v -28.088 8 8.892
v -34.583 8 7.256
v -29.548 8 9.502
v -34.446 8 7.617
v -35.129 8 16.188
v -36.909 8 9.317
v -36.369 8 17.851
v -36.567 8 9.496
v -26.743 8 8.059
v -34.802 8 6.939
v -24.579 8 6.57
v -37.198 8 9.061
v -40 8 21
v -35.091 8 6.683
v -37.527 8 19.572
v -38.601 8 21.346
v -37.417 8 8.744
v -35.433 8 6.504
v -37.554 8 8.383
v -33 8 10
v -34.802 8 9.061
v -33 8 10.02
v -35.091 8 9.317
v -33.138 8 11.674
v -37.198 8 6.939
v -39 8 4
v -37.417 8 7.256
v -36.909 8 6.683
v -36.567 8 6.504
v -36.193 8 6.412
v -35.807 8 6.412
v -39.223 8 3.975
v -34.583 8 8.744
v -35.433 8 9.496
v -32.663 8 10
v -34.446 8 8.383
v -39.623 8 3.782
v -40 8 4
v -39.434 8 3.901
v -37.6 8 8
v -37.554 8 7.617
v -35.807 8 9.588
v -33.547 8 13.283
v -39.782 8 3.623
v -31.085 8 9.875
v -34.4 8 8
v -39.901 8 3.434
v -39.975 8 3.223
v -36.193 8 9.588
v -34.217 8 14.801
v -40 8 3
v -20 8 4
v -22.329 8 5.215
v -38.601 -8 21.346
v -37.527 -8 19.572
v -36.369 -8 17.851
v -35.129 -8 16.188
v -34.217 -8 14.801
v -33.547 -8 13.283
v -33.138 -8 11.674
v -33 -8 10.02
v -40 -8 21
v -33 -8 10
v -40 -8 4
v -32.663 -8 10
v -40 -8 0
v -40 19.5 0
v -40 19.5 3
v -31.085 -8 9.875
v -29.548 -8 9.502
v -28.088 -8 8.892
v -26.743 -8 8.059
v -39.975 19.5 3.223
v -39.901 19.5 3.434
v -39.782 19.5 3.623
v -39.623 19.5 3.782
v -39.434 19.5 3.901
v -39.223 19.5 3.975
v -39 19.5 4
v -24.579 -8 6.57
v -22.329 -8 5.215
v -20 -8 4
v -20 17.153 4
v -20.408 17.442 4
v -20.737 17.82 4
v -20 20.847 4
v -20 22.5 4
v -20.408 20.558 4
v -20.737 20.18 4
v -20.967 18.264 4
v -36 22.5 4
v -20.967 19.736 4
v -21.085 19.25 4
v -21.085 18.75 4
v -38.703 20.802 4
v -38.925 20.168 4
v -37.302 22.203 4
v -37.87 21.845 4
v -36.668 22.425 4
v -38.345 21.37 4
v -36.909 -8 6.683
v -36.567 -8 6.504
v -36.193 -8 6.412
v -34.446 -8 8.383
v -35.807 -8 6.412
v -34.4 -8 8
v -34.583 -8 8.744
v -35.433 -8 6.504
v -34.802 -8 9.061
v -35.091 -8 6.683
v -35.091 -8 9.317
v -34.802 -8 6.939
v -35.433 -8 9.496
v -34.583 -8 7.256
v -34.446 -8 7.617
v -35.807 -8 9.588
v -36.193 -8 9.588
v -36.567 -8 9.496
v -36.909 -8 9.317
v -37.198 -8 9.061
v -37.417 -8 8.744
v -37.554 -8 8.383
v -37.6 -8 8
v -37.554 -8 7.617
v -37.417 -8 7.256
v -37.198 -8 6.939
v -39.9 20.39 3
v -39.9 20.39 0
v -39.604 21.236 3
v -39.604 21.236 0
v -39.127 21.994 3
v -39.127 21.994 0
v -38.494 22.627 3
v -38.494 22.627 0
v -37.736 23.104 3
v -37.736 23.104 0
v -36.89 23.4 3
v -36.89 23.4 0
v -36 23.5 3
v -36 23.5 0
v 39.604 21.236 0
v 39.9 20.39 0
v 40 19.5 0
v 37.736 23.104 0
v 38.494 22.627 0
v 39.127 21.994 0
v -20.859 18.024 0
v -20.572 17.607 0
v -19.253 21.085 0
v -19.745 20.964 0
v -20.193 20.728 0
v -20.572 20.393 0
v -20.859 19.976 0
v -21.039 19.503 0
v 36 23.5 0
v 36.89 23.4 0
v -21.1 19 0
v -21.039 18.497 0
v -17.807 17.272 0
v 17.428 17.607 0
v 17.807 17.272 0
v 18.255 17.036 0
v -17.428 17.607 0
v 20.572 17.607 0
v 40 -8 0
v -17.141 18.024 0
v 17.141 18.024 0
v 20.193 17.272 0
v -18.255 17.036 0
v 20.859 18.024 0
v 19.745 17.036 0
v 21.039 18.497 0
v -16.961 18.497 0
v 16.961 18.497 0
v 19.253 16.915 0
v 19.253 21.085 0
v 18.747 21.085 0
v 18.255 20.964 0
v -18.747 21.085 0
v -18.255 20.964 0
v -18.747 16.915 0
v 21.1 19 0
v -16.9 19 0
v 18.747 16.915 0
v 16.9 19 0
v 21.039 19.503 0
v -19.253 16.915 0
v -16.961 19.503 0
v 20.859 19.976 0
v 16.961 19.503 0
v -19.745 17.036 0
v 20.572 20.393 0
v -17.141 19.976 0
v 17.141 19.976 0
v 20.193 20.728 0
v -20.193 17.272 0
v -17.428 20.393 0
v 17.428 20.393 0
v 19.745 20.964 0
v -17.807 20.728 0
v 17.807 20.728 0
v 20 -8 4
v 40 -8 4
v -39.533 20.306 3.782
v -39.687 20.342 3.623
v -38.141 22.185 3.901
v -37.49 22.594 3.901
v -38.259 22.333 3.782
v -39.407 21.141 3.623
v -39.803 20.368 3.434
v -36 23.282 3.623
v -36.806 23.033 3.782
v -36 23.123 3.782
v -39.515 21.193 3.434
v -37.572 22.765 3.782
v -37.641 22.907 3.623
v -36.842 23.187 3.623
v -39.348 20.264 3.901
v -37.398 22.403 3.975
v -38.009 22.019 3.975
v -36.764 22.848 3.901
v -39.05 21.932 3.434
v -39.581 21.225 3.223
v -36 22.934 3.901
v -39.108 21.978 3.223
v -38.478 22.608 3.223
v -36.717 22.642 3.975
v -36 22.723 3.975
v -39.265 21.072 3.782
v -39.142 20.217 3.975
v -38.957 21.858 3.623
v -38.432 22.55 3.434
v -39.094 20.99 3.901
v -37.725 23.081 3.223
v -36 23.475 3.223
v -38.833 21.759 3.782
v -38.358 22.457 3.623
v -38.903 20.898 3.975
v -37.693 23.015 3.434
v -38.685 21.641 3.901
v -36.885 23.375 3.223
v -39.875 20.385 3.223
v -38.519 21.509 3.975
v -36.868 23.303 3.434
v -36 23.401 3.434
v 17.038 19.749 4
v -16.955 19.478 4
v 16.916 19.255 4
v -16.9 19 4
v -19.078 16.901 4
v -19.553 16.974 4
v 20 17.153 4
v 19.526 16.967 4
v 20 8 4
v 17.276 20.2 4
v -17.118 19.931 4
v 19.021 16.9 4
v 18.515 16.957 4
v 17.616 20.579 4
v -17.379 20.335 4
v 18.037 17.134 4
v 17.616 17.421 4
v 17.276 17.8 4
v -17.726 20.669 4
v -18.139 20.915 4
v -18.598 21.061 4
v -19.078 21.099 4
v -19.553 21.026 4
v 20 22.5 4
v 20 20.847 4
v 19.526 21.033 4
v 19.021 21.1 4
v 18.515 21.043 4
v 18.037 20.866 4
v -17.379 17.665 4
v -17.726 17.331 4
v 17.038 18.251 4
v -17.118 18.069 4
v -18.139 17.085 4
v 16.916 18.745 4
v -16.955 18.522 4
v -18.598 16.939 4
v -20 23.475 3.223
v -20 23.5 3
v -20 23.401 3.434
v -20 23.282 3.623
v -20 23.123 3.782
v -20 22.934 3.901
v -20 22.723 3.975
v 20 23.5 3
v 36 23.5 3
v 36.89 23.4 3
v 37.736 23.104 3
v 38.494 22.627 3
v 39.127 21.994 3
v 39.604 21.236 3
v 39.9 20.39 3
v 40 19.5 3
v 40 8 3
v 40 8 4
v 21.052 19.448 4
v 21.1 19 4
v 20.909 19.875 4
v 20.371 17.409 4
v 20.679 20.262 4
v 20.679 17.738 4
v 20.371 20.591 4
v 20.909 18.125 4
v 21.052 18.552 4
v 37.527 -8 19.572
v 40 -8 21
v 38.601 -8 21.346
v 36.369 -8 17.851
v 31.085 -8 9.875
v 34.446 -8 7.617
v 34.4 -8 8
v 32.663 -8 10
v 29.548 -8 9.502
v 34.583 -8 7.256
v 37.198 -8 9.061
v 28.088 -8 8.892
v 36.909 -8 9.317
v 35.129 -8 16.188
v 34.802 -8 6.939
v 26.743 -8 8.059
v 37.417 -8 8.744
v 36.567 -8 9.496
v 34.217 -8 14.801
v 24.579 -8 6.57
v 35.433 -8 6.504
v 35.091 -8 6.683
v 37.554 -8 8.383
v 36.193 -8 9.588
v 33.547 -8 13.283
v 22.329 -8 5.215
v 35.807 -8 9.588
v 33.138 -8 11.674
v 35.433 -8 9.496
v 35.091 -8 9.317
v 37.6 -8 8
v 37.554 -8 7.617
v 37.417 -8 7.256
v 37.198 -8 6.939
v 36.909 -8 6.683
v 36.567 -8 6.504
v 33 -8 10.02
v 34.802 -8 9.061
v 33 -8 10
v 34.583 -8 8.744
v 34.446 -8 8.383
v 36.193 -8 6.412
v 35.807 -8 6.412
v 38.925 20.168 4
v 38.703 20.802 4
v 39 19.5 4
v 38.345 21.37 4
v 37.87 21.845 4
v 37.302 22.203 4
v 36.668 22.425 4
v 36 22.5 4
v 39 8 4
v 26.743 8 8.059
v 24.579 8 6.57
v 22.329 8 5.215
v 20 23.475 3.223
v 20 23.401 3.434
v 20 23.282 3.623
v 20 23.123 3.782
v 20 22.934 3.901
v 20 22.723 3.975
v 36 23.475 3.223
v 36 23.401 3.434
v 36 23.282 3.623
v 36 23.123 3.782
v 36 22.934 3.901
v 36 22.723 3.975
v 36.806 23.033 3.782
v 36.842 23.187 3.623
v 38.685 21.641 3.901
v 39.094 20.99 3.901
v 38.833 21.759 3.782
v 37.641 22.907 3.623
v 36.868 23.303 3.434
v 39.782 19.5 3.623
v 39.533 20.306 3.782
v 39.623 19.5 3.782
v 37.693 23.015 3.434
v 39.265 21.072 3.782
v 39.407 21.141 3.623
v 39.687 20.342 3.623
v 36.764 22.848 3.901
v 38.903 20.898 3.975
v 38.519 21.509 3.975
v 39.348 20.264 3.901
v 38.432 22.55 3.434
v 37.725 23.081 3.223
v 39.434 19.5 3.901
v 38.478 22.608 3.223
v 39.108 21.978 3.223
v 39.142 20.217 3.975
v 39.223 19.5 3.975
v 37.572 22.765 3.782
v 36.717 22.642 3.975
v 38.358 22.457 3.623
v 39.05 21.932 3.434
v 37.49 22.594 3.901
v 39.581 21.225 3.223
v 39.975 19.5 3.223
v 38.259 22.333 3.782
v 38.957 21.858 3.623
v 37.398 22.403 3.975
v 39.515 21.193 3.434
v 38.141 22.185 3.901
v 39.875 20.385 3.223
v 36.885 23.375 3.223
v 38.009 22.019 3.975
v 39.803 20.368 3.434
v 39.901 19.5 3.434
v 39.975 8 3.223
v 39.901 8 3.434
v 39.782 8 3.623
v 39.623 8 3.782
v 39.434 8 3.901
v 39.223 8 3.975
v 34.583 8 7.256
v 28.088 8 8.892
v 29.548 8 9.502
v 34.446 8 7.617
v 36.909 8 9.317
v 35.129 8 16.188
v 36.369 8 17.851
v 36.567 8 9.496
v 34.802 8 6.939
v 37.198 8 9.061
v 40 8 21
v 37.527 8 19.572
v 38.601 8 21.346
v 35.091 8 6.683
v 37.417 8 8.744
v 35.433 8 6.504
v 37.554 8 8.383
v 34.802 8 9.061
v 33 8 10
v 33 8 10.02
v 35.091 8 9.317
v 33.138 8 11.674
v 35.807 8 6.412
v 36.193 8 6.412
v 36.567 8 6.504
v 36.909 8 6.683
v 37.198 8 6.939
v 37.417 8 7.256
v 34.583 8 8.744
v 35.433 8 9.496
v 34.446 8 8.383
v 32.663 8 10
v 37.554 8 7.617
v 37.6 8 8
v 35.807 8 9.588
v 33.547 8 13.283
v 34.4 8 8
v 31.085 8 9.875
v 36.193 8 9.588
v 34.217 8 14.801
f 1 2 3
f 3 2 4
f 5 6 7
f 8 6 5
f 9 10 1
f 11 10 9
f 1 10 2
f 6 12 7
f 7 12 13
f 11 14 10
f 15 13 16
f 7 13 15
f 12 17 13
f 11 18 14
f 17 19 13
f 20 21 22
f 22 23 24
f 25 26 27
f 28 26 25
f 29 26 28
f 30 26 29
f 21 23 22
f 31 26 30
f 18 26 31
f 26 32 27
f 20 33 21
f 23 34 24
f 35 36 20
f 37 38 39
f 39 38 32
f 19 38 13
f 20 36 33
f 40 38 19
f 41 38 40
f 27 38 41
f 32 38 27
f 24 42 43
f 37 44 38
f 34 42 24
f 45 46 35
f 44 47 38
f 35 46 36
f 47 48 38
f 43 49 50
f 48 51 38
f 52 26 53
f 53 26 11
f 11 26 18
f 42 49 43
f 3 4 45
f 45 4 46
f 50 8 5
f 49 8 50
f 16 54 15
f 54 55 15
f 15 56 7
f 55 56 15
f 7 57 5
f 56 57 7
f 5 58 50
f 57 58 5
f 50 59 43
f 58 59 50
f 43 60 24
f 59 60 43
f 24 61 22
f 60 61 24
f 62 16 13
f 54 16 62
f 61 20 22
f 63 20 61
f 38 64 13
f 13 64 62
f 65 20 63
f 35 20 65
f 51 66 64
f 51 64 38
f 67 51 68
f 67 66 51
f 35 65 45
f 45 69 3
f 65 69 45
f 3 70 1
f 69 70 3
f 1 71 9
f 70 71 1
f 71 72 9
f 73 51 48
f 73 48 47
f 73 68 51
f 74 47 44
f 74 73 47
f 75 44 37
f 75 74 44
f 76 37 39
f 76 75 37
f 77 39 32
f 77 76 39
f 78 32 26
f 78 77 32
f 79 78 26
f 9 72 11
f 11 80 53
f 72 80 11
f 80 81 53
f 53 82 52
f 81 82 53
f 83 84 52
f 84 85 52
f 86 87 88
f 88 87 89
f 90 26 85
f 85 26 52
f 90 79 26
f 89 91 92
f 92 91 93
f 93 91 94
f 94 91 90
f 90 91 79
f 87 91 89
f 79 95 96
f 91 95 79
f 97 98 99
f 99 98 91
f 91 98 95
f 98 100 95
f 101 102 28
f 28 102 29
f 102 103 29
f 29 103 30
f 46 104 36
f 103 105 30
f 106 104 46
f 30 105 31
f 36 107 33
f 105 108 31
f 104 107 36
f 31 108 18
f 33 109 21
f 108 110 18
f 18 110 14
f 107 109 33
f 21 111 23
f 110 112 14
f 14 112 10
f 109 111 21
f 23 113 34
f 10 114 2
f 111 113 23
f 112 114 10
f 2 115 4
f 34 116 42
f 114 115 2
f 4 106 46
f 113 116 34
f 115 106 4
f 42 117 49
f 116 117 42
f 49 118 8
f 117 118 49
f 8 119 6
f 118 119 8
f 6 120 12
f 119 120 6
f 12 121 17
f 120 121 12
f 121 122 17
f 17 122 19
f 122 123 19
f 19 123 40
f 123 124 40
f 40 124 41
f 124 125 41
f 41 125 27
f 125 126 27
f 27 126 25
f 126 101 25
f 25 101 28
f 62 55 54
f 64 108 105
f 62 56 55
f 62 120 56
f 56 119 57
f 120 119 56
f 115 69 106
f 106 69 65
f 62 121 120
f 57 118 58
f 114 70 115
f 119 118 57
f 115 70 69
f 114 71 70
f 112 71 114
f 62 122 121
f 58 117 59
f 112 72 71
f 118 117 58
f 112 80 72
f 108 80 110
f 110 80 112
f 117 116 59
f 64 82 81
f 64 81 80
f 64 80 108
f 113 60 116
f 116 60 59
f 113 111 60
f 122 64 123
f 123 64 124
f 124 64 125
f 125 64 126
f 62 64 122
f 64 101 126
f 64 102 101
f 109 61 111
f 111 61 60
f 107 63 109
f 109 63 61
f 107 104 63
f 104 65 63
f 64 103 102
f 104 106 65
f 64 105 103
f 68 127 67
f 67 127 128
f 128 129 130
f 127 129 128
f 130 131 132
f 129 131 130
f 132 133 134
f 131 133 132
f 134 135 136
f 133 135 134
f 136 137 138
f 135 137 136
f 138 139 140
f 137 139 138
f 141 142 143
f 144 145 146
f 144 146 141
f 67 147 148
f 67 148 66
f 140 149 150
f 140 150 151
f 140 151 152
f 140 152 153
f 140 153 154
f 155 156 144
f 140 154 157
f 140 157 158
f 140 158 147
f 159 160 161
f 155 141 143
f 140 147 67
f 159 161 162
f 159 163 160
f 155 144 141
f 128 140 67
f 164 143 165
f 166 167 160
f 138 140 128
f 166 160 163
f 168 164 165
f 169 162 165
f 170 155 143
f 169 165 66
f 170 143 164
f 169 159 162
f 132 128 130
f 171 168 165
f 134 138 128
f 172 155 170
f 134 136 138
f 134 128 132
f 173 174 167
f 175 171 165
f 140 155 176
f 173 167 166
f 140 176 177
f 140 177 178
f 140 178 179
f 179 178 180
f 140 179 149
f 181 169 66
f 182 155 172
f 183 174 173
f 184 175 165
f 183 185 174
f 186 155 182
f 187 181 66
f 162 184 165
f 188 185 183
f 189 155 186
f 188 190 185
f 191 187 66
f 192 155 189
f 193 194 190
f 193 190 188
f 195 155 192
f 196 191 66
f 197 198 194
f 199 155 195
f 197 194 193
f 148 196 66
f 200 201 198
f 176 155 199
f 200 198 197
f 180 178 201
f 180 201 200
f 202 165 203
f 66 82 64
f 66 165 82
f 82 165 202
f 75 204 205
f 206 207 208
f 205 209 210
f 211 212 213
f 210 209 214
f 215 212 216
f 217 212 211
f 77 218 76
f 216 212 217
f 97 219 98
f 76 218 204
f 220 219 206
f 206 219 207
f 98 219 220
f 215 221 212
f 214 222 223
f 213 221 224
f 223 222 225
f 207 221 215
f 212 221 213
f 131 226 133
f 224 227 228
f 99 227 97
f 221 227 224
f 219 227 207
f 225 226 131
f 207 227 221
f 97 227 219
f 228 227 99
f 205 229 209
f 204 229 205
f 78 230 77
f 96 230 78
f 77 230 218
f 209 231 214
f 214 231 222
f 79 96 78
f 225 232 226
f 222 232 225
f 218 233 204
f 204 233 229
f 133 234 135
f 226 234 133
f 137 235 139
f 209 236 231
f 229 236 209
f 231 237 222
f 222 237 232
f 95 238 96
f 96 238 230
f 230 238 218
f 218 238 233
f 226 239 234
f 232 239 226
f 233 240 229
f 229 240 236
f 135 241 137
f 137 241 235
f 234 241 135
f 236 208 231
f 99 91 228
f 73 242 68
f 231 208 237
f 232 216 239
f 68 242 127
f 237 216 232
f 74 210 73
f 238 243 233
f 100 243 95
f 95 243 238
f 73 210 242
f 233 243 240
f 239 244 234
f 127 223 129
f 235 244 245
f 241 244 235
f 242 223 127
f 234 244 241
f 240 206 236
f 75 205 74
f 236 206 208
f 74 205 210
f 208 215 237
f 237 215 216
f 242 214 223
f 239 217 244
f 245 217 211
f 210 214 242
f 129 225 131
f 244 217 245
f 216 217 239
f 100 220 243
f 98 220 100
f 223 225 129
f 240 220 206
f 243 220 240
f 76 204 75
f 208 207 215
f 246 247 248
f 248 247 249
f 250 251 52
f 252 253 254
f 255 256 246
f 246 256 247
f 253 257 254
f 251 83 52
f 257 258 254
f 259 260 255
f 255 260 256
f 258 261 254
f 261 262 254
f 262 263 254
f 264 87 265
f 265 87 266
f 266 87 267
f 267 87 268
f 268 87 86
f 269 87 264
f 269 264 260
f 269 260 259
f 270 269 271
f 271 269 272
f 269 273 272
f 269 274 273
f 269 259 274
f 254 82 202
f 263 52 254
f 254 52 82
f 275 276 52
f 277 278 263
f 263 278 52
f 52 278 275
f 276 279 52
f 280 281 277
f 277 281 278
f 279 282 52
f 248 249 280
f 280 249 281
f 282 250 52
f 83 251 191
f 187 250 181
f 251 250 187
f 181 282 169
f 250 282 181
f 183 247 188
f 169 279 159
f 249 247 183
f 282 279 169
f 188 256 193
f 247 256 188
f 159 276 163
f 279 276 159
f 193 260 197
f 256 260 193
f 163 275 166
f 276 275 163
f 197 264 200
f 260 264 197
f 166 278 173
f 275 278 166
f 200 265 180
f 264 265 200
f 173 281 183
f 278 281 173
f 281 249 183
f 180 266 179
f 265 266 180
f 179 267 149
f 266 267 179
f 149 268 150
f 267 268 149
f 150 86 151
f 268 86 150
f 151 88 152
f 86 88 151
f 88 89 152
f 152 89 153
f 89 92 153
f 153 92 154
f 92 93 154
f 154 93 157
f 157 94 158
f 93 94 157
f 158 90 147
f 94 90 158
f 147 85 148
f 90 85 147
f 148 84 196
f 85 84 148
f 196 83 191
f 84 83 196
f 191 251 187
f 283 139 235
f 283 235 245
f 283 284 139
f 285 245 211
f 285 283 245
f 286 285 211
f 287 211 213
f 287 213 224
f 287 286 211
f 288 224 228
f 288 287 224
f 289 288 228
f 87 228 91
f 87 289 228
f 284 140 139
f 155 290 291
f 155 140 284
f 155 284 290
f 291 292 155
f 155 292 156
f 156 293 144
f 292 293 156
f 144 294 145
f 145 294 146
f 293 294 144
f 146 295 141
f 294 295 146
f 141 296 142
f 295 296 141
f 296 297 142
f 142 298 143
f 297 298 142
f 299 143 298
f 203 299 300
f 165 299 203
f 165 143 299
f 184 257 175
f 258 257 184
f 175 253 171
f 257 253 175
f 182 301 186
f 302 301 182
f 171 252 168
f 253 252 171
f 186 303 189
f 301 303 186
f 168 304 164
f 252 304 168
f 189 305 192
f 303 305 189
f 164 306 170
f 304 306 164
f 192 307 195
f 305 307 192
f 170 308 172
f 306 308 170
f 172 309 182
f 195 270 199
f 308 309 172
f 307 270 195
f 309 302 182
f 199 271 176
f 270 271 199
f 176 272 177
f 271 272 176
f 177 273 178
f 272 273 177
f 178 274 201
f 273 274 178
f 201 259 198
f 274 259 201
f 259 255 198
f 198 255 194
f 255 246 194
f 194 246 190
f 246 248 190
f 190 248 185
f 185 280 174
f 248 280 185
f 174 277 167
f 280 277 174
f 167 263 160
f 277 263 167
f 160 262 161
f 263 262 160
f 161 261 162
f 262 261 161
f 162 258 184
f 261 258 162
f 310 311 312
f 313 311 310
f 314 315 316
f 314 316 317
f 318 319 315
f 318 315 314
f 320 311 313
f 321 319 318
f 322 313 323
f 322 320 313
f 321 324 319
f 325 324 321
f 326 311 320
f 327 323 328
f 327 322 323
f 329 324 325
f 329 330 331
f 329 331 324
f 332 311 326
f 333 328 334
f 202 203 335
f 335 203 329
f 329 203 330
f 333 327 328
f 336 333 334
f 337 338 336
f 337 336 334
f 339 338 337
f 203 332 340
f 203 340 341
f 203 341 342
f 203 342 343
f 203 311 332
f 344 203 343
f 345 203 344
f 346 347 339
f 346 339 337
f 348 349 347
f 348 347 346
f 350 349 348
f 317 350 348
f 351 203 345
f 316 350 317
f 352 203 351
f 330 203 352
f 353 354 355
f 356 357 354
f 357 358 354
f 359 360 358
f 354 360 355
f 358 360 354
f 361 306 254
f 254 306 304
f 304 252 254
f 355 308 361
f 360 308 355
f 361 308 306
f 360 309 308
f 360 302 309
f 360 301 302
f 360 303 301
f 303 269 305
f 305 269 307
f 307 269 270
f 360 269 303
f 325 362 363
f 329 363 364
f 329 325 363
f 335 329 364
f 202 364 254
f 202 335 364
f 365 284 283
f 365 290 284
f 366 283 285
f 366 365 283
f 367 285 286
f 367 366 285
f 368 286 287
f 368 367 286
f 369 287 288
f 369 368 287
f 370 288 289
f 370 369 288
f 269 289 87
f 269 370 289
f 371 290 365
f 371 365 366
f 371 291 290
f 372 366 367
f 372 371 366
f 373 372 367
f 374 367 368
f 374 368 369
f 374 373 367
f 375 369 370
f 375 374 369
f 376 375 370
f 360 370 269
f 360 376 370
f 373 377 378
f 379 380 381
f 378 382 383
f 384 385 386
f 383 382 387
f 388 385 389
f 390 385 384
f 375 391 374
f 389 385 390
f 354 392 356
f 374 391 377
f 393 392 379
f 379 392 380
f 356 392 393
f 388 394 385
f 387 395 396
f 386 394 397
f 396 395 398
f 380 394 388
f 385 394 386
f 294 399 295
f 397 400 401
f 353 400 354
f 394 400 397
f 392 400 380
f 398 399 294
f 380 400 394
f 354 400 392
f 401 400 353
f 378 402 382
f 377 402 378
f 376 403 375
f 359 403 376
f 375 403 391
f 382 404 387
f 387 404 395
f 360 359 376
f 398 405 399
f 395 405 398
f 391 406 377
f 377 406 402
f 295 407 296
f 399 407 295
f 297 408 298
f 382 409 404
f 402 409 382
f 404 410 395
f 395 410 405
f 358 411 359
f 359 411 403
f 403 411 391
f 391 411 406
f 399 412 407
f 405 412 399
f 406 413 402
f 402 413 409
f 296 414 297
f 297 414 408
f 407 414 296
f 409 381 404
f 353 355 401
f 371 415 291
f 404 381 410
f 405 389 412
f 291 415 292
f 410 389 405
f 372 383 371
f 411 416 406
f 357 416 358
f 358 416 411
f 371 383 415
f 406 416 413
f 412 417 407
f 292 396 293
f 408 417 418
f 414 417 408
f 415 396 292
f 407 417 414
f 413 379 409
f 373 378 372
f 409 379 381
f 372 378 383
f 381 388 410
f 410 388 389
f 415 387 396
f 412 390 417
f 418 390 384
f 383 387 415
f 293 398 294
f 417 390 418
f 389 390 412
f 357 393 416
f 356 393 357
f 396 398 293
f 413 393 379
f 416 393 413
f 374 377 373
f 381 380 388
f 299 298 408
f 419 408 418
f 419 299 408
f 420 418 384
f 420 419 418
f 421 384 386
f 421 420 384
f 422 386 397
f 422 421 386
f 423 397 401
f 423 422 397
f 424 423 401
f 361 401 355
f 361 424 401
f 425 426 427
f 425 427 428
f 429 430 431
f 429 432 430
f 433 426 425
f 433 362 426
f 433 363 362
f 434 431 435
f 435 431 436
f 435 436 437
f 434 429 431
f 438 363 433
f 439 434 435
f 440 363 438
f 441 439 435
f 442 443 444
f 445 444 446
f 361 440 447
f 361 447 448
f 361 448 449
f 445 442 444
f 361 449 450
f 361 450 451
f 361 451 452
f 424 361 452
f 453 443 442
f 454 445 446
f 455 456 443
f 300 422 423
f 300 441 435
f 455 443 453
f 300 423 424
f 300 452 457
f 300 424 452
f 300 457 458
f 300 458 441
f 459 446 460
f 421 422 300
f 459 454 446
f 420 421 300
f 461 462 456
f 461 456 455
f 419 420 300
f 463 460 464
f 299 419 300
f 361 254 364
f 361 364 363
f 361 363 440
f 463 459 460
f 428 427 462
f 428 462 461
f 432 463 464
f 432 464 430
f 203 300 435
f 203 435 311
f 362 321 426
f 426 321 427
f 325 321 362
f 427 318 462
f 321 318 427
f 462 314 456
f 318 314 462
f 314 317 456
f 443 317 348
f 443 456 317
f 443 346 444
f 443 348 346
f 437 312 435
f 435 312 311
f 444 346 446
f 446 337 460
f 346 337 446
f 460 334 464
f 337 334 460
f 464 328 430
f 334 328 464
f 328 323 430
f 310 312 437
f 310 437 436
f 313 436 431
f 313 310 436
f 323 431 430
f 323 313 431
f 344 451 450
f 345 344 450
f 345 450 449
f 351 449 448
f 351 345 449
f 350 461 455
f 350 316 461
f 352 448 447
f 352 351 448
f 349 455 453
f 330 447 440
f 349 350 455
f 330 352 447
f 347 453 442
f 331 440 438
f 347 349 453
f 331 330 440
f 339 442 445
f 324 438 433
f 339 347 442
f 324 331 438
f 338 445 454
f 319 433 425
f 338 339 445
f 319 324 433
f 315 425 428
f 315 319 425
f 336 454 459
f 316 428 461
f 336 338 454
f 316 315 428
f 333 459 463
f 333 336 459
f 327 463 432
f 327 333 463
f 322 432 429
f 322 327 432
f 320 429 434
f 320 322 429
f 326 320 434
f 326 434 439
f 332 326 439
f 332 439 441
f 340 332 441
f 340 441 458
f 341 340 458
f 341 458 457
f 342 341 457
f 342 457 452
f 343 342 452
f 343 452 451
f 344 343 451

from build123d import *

# Parameters (mm, degrees)
SKETCH_W        = 80
SKETCH_H        = 47
PAD_DEPTH       = 4
SKETCH001_R     = 2.1
POCKET_DEPTH    = 4.001
SKETCH002_W     = 20
SKETCH002_H     = 16
PAD001_DEPTH    = 20
SKETCH003_R     = 1.6
POCKET001_DEPTH = 223.177811
POCKET002_DEPTH = 223.177811
CHAMFER_SIZE    = 3
CHAMFER_FACE9_W = 80
CHAMFER_FACE9_H = 4
POCKET003_DEPTH = 15.5
FILLET_R        = 4
FILLET001_R     = 1
SKETCH005_W     = 15
SKETCH005_H     = 16
POCKET004_DEPTH = 9
FILLET002_R     = 10


with BuildPart() as part:
    # Sketch → Pad (new body)
    with BuildSketch(Plane.XY):
        Rectangle(SKETCH_W, SKETCH_H)
    extrude(amount=PAD_DEPTH)

    # Sketch001 (on Face6 of Pad) → Pocket (cut, through all)
    with BuildSketch(Plane.XY.offset(4)):
        with Locations((-19, 19)):
            Circle(SKETCH001_R)
        with Locations((19, 19)):
            Circle(SKETCH001_R)
        with Locations((19, -19)):
            Circle(SKETCH001_R)
        with Locations((-19, -19)):
            Circle(SKETCH001_R)
    extrude(amount=-POCKET_DEPTH, mode=Mode.SUBTRACT)

    # Sketch002 (on Face5 of Pocket) → Pad001 (join)
    with BuildSketch(Plane.XY.offset(4)):
        with Locations((-30, 0)):
            Rectangle(SKETCH002_W, SKETCH002_H)
    pad001 = extrude(amount=PAD001_DEPTH)

    # Mirrored: Pad001 across YZ
    add(pad001.mirror(Plane.YZ))

    # Sketch003 (on Face15 of Mirrored) → Pocket001 (cut, through all)
    with BuildSketch(Plane.XZ.offset(8)):
        with Locations((-36, 8)):
            Circle(SKETCH003_R)
    pocket001 = extrude(amount=-POCKET001_DEPTH, mode=Mode.SUBTRACT)

    # Mirrored001: Pocket001 across YZ
    add(pocket001.mirror(Plane.YZ), mode=Mode.SUBTRACT)

    # Sketch004 (on Face15 of Mirrored001) → Pocket002 (cut, through all)
    with BuildSketch(Plane.XZ.offset(8)):
        with BuildLine():
            ThreePointArc((-40, 24), (-31.691484, 12.308516), (-20, 4))
            Line((-20, 24), (-20, 4))
            Line((-40, 24), (-20, 24))
        make_face()
    pocket002 = extrude(amount=-POCKET002_DEPTH, mode=Mode.SUBTRACT)

    # Mirrored002: Pocket002 across Sketch004 V_Axis
    add(pocket002.mirror(Plane(origin=(0, -8, 0), x_dir=(0, -1, 0), z_dir=(1, 0, 0))), mode=Mode.SUBTRACT)

    # Chamfer
    chamfer_edges = [part.edges().sort_by_distance(p)[0] for p in [
        (-40, 0, 24),
        (40, 0, 24),
    ]]
    chamfer(chamfer_edges, length=CHAMFER_SIZE)

    # Chamfer Face9 → Pocket003 (cut)
    with BuildSketch(Plane(origin=(0, -23.5, 2), x_dir=(-1, 0, 0), z_dir=(0, -1, 0))):
        Rectangle(CHAMFER_FACE9_W, CHAMFER_FACE9_H)
    extrude(amount=-POCKET003_DEPTH, mode=Mode.SUBTRACT)

    # Fillet
    fillet_edges = [part.edges().sort_by_distance(p)[0] for p in [
        (-40, 23.5, 2),
        (40, 23.5, 2),
    ]]
    fillet(fillet_edges, radius=FILLET_R)

    # Fillet001
    fillet001_edges = [part.edges().sort_by_distance(p)[0] for p in [
        (40, 13.75, 4),
    ]]
    fillet(fillet001_edges, radius=FILLET001_R)

    # Sketch005 (on DatumPlane) → Pocket004 (cut)
    with BuildSketch(Plane.XY.offset(10)):
        with Locations((-25.5, 0)):
            Rectangle(SKETCH005_W, SKETCH005_H)
    pocket004 = extrude(amount=POCKET004_DEPTH, mode=Mode.SUBTRACT)

    # Mirrored003: Pocket004 across Sketch005 V_Axis
    add(pocket004.mirror(Plane(origin=(0, 0, 10), x_dir=(0, 0, 1), z_dir=(1, 0, 0))), mode=Mode.SUBTRACT)

    # Fillet002
    fillet002_edges = [part.edges().sort_by_distance(p)[0] for p in [
        (33, 0, 13.675937),
        (29.19265, 0, 10),
        (-33, 0, 13.675937),
        (-29.19265, 0, 10),
    ]]
    fillet(fillet002_edges, radius=FILLET002_R)


solid = part.part
